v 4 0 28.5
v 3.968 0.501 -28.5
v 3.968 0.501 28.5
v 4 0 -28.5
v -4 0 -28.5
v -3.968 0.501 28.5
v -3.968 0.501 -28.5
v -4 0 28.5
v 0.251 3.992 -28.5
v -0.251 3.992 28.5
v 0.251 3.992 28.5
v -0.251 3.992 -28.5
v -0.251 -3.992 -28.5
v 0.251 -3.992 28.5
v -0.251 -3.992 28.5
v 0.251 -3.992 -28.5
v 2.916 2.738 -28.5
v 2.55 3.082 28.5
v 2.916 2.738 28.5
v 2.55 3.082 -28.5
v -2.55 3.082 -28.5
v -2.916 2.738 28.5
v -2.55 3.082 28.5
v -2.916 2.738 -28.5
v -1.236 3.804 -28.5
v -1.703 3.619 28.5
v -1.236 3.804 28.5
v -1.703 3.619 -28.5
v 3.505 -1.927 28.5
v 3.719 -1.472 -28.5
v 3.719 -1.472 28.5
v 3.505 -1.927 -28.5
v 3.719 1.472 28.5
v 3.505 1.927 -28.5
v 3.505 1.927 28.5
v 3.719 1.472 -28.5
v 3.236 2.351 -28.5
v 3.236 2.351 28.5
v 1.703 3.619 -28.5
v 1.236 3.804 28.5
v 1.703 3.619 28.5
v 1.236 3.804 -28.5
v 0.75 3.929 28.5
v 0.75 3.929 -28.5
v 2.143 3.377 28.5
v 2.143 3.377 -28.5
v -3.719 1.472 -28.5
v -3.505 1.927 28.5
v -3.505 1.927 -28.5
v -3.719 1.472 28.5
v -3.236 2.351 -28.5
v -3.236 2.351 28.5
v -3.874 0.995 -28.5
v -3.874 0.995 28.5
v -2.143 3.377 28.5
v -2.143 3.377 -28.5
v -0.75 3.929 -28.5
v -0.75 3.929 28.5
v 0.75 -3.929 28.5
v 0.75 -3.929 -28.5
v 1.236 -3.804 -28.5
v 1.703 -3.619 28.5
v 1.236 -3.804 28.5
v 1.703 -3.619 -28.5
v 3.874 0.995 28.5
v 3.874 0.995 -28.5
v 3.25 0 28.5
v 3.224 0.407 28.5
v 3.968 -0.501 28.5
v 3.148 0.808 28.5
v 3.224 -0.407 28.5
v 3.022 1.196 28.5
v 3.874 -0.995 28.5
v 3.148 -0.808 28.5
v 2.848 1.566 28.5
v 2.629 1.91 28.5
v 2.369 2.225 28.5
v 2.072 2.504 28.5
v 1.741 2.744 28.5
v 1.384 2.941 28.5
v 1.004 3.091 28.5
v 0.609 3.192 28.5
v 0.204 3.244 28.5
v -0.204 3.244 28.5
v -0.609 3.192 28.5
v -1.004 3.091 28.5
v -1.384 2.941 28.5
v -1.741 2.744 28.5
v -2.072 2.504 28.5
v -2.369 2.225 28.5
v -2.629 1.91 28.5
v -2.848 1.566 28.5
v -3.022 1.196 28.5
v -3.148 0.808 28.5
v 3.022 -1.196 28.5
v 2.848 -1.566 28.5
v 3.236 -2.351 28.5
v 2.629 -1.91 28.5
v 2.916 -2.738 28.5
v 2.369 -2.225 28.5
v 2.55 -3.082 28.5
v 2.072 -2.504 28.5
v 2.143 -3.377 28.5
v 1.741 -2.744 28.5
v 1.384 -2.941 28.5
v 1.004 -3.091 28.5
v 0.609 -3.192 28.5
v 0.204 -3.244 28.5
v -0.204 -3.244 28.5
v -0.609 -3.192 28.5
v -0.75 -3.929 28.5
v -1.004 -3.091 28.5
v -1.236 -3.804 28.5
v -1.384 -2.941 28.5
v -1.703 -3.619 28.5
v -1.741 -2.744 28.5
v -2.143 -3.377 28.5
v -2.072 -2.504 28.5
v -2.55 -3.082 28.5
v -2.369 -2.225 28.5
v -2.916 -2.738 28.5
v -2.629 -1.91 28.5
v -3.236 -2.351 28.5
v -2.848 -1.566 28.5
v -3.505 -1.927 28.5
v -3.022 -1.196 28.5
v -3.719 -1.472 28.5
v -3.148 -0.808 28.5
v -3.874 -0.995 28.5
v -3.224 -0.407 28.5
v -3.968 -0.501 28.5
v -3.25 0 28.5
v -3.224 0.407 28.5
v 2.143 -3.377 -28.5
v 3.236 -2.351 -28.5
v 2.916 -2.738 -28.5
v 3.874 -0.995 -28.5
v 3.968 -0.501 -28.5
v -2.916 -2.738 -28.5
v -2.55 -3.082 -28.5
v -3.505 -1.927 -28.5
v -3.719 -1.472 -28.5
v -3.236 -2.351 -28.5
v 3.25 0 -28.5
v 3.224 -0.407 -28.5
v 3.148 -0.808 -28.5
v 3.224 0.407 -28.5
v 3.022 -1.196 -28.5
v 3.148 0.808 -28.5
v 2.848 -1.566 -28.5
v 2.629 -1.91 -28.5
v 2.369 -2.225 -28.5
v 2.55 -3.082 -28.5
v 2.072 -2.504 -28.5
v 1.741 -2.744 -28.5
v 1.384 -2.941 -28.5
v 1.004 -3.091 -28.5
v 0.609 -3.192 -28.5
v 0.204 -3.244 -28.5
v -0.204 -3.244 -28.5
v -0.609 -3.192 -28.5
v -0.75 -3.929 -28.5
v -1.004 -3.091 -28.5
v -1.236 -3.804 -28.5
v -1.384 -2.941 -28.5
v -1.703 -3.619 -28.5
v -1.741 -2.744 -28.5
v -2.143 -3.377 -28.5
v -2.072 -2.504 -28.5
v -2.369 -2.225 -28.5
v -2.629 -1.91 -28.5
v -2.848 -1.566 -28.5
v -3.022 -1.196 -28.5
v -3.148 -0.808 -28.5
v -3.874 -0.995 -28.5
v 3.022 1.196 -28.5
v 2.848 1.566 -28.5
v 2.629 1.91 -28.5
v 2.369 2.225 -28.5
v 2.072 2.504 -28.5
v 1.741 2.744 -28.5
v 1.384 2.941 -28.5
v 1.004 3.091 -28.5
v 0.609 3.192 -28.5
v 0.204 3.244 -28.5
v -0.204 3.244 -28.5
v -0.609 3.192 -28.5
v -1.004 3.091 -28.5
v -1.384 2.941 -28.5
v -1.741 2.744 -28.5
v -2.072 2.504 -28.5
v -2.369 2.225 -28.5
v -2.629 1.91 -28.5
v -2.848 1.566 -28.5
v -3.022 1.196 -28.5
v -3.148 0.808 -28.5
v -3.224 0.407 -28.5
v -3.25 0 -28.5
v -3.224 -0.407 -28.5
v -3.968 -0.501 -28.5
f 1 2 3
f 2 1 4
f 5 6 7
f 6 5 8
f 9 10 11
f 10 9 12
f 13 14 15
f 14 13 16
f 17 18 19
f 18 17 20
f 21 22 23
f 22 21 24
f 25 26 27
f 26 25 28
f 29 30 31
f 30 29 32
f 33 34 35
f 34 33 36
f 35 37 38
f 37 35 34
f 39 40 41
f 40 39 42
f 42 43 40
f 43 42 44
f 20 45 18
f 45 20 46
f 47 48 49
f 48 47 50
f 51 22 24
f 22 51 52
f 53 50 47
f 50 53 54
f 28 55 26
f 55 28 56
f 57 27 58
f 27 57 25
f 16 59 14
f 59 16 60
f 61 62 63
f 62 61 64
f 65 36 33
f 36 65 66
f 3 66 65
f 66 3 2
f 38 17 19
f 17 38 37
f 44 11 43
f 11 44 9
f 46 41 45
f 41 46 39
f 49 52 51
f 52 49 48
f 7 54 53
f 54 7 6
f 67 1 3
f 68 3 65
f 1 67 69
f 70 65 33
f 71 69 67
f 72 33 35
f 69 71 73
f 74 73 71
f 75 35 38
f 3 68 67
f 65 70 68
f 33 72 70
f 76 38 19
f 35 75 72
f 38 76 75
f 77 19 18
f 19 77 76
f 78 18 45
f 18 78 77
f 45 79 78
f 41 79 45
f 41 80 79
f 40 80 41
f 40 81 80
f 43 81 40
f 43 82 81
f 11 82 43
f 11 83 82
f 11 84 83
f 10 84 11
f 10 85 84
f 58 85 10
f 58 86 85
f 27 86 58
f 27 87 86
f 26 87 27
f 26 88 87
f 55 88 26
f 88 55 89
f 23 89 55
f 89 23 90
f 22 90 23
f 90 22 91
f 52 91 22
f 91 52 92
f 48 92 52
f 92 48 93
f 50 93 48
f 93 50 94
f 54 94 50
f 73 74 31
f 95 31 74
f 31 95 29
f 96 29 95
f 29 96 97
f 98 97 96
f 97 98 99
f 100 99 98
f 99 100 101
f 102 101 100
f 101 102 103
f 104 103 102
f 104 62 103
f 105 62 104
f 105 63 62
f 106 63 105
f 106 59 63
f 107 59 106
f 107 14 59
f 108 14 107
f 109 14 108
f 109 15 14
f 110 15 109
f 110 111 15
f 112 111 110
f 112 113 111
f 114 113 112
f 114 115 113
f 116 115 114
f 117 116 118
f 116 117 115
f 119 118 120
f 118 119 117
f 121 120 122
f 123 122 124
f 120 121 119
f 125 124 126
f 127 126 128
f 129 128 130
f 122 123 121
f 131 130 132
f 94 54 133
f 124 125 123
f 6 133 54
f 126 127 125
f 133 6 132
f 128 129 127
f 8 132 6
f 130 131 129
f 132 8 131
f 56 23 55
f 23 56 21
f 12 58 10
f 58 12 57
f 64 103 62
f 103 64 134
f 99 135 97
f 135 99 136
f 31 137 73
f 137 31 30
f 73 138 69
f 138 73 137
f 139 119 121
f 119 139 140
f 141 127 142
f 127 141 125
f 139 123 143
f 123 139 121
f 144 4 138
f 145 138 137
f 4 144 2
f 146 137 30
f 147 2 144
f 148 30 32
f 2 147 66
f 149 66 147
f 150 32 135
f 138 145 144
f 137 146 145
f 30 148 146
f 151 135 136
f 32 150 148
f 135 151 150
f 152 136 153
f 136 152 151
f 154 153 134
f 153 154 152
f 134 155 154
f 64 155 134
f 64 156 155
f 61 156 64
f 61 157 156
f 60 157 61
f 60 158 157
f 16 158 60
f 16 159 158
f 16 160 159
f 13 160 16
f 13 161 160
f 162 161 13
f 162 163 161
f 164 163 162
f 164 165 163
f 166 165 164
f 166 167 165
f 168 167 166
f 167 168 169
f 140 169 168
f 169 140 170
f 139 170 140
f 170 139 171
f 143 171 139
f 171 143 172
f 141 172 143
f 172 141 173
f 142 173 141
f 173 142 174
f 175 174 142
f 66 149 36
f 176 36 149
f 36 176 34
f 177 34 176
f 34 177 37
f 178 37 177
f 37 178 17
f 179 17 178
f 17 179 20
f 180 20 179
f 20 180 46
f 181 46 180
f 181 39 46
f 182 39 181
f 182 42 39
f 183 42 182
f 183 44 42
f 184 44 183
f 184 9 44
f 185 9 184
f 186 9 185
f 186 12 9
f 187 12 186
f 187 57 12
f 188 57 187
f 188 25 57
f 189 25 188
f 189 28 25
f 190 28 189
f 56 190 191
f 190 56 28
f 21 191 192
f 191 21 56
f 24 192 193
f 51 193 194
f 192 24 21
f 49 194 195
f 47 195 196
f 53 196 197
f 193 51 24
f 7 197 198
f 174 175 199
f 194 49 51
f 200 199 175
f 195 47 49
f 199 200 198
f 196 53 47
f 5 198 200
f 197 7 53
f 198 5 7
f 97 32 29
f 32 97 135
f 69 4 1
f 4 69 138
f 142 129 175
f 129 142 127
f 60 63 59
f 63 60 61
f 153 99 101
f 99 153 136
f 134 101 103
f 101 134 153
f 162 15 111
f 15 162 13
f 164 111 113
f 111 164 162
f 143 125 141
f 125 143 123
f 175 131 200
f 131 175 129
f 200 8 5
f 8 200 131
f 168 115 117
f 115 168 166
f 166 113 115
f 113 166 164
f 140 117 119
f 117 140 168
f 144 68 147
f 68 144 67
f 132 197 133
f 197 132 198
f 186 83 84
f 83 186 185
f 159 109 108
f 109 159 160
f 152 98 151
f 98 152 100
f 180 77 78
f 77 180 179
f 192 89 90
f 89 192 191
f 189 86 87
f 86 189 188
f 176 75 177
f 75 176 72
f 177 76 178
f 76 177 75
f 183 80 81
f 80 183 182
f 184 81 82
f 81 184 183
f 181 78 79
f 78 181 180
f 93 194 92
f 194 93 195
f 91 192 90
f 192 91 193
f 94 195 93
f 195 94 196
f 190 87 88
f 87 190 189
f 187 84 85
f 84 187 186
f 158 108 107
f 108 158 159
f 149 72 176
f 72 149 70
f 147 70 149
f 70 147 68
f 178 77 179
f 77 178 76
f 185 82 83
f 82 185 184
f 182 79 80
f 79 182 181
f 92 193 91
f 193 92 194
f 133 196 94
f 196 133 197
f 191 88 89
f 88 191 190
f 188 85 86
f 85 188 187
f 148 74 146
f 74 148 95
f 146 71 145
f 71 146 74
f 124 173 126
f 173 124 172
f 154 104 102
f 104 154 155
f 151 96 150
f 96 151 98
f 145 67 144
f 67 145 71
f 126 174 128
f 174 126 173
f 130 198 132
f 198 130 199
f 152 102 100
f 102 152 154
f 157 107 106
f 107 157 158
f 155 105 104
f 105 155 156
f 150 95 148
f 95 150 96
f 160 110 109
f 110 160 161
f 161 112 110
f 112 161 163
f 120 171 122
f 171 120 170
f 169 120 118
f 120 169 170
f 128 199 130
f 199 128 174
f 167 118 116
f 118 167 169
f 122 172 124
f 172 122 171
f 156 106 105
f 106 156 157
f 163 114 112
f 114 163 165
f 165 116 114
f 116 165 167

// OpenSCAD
$fn = 50;


difference() {
	union() {
		translate(v = [0, 0, -28.5000000000]) {
			cylinder(h = 57, r = 4.0000000000);
		}
	}
	union() {
		translate(v = [0, 0, -100.0000000000]) {
			cylinder(h = 200, r = 3.2500000000);
		}
	}
}
